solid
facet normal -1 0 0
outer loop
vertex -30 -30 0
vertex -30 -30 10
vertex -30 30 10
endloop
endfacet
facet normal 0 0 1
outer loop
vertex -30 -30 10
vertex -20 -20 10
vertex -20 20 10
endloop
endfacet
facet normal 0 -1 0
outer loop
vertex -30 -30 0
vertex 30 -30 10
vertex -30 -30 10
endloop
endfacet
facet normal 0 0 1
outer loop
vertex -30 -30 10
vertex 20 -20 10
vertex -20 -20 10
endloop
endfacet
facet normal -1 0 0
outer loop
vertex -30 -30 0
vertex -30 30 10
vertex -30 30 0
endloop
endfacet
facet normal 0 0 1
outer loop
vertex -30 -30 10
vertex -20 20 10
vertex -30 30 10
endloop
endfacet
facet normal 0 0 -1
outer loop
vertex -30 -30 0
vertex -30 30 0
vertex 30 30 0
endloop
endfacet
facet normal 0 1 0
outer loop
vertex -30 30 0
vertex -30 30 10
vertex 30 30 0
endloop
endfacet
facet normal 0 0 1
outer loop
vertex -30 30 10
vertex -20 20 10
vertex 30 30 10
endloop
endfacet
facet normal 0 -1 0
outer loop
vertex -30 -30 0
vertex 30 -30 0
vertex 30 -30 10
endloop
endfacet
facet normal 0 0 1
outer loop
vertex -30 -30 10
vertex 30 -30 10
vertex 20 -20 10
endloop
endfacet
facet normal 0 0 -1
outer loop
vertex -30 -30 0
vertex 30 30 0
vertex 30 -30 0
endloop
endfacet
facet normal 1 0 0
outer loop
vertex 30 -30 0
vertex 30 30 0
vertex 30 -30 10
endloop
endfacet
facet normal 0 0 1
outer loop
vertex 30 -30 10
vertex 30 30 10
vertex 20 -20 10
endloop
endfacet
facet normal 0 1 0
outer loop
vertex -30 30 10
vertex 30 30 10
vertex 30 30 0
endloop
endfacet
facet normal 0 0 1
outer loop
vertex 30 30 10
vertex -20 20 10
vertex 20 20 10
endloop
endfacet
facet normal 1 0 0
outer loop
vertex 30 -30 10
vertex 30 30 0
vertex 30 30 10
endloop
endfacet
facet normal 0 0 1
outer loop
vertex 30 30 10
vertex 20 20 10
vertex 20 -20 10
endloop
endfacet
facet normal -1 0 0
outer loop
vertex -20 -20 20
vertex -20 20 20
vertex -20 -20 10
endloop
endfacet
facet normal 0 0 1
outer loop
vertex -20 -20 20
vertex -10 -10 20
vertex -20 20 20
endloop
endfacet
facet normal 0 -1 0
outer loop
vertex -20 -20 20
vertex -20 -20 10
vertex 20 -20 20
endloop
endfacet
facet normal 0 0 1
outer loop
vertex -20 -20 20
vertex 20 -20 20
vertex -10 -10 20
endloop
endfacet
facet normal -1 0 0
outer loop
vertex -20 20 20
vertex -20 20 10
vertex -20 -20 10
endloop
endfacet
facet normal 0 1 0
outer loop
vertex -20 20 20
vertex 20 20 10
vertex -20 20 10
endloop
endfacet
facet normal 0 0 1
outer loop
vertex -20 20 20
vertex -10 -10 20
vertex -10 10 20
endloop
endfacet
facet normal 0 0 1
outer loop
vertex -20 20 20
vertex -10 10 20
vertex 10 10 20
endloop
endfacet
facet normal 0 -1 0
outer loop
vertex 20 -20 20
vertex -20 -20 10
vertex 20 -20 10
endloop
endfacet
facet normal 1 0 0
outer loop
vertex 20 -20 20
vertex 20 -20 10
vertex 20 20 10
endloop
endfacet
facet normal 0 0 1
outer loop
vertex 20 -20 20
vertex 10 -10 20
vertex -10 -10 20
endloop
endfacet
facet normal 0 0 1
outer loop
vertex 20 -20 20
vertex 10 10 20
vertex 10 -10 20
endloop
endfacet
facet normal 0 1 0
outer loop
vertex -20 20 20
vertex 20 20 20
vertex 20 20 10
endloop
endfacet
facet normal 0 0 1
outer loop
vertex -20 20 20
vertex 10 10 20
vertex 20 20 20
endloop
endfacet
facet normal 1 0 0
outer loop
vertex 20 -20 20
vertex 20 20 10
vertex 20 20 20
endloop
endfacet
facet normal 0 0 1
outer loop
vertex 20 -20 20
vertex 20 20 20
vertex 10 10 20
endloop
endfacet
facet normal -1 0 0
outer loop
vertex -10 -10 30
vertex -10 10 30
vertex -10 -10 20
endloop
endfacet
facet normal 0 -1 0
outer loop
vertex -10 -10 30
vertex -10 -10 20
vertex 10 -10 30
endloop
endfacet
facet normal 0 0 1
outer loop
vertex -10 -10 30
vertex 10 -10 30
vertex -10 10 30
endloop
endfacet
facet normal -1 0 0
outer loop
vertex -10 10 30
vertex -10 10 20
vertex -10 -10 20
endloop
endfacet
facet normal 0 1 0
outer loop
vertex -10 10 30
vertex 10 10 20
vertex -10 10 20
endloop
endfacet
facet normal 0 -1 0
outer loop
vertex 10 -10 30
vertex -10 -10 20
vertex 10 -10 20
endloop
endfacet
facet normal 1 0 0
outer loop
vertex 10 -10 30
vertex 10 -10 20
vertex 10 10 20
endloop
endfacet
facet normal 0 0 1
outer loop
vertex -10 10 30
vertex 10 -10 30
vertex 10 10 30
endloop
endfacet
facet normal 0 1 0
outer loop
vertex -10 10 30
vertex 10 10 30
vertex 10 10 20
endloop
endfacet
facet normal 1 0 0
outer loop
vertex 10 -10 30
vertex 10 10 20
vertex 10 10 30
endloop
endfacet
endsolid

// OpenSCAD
union() {
    // Bottom layer: 60mm × 60mm × 10mm
    translate([0, 0, 5])
        cube([60, 60, 10], center=true);

    // Middle layer: 40mm × 40mm × 10mm
    translate([0, 0, 15])
        cube([40, 40, 10], center=true);

    // Top layer: 20mm × 20mm × 10mm
    translate([0, 0, 25])
        cube([20, 20, 10], center=true);
}
